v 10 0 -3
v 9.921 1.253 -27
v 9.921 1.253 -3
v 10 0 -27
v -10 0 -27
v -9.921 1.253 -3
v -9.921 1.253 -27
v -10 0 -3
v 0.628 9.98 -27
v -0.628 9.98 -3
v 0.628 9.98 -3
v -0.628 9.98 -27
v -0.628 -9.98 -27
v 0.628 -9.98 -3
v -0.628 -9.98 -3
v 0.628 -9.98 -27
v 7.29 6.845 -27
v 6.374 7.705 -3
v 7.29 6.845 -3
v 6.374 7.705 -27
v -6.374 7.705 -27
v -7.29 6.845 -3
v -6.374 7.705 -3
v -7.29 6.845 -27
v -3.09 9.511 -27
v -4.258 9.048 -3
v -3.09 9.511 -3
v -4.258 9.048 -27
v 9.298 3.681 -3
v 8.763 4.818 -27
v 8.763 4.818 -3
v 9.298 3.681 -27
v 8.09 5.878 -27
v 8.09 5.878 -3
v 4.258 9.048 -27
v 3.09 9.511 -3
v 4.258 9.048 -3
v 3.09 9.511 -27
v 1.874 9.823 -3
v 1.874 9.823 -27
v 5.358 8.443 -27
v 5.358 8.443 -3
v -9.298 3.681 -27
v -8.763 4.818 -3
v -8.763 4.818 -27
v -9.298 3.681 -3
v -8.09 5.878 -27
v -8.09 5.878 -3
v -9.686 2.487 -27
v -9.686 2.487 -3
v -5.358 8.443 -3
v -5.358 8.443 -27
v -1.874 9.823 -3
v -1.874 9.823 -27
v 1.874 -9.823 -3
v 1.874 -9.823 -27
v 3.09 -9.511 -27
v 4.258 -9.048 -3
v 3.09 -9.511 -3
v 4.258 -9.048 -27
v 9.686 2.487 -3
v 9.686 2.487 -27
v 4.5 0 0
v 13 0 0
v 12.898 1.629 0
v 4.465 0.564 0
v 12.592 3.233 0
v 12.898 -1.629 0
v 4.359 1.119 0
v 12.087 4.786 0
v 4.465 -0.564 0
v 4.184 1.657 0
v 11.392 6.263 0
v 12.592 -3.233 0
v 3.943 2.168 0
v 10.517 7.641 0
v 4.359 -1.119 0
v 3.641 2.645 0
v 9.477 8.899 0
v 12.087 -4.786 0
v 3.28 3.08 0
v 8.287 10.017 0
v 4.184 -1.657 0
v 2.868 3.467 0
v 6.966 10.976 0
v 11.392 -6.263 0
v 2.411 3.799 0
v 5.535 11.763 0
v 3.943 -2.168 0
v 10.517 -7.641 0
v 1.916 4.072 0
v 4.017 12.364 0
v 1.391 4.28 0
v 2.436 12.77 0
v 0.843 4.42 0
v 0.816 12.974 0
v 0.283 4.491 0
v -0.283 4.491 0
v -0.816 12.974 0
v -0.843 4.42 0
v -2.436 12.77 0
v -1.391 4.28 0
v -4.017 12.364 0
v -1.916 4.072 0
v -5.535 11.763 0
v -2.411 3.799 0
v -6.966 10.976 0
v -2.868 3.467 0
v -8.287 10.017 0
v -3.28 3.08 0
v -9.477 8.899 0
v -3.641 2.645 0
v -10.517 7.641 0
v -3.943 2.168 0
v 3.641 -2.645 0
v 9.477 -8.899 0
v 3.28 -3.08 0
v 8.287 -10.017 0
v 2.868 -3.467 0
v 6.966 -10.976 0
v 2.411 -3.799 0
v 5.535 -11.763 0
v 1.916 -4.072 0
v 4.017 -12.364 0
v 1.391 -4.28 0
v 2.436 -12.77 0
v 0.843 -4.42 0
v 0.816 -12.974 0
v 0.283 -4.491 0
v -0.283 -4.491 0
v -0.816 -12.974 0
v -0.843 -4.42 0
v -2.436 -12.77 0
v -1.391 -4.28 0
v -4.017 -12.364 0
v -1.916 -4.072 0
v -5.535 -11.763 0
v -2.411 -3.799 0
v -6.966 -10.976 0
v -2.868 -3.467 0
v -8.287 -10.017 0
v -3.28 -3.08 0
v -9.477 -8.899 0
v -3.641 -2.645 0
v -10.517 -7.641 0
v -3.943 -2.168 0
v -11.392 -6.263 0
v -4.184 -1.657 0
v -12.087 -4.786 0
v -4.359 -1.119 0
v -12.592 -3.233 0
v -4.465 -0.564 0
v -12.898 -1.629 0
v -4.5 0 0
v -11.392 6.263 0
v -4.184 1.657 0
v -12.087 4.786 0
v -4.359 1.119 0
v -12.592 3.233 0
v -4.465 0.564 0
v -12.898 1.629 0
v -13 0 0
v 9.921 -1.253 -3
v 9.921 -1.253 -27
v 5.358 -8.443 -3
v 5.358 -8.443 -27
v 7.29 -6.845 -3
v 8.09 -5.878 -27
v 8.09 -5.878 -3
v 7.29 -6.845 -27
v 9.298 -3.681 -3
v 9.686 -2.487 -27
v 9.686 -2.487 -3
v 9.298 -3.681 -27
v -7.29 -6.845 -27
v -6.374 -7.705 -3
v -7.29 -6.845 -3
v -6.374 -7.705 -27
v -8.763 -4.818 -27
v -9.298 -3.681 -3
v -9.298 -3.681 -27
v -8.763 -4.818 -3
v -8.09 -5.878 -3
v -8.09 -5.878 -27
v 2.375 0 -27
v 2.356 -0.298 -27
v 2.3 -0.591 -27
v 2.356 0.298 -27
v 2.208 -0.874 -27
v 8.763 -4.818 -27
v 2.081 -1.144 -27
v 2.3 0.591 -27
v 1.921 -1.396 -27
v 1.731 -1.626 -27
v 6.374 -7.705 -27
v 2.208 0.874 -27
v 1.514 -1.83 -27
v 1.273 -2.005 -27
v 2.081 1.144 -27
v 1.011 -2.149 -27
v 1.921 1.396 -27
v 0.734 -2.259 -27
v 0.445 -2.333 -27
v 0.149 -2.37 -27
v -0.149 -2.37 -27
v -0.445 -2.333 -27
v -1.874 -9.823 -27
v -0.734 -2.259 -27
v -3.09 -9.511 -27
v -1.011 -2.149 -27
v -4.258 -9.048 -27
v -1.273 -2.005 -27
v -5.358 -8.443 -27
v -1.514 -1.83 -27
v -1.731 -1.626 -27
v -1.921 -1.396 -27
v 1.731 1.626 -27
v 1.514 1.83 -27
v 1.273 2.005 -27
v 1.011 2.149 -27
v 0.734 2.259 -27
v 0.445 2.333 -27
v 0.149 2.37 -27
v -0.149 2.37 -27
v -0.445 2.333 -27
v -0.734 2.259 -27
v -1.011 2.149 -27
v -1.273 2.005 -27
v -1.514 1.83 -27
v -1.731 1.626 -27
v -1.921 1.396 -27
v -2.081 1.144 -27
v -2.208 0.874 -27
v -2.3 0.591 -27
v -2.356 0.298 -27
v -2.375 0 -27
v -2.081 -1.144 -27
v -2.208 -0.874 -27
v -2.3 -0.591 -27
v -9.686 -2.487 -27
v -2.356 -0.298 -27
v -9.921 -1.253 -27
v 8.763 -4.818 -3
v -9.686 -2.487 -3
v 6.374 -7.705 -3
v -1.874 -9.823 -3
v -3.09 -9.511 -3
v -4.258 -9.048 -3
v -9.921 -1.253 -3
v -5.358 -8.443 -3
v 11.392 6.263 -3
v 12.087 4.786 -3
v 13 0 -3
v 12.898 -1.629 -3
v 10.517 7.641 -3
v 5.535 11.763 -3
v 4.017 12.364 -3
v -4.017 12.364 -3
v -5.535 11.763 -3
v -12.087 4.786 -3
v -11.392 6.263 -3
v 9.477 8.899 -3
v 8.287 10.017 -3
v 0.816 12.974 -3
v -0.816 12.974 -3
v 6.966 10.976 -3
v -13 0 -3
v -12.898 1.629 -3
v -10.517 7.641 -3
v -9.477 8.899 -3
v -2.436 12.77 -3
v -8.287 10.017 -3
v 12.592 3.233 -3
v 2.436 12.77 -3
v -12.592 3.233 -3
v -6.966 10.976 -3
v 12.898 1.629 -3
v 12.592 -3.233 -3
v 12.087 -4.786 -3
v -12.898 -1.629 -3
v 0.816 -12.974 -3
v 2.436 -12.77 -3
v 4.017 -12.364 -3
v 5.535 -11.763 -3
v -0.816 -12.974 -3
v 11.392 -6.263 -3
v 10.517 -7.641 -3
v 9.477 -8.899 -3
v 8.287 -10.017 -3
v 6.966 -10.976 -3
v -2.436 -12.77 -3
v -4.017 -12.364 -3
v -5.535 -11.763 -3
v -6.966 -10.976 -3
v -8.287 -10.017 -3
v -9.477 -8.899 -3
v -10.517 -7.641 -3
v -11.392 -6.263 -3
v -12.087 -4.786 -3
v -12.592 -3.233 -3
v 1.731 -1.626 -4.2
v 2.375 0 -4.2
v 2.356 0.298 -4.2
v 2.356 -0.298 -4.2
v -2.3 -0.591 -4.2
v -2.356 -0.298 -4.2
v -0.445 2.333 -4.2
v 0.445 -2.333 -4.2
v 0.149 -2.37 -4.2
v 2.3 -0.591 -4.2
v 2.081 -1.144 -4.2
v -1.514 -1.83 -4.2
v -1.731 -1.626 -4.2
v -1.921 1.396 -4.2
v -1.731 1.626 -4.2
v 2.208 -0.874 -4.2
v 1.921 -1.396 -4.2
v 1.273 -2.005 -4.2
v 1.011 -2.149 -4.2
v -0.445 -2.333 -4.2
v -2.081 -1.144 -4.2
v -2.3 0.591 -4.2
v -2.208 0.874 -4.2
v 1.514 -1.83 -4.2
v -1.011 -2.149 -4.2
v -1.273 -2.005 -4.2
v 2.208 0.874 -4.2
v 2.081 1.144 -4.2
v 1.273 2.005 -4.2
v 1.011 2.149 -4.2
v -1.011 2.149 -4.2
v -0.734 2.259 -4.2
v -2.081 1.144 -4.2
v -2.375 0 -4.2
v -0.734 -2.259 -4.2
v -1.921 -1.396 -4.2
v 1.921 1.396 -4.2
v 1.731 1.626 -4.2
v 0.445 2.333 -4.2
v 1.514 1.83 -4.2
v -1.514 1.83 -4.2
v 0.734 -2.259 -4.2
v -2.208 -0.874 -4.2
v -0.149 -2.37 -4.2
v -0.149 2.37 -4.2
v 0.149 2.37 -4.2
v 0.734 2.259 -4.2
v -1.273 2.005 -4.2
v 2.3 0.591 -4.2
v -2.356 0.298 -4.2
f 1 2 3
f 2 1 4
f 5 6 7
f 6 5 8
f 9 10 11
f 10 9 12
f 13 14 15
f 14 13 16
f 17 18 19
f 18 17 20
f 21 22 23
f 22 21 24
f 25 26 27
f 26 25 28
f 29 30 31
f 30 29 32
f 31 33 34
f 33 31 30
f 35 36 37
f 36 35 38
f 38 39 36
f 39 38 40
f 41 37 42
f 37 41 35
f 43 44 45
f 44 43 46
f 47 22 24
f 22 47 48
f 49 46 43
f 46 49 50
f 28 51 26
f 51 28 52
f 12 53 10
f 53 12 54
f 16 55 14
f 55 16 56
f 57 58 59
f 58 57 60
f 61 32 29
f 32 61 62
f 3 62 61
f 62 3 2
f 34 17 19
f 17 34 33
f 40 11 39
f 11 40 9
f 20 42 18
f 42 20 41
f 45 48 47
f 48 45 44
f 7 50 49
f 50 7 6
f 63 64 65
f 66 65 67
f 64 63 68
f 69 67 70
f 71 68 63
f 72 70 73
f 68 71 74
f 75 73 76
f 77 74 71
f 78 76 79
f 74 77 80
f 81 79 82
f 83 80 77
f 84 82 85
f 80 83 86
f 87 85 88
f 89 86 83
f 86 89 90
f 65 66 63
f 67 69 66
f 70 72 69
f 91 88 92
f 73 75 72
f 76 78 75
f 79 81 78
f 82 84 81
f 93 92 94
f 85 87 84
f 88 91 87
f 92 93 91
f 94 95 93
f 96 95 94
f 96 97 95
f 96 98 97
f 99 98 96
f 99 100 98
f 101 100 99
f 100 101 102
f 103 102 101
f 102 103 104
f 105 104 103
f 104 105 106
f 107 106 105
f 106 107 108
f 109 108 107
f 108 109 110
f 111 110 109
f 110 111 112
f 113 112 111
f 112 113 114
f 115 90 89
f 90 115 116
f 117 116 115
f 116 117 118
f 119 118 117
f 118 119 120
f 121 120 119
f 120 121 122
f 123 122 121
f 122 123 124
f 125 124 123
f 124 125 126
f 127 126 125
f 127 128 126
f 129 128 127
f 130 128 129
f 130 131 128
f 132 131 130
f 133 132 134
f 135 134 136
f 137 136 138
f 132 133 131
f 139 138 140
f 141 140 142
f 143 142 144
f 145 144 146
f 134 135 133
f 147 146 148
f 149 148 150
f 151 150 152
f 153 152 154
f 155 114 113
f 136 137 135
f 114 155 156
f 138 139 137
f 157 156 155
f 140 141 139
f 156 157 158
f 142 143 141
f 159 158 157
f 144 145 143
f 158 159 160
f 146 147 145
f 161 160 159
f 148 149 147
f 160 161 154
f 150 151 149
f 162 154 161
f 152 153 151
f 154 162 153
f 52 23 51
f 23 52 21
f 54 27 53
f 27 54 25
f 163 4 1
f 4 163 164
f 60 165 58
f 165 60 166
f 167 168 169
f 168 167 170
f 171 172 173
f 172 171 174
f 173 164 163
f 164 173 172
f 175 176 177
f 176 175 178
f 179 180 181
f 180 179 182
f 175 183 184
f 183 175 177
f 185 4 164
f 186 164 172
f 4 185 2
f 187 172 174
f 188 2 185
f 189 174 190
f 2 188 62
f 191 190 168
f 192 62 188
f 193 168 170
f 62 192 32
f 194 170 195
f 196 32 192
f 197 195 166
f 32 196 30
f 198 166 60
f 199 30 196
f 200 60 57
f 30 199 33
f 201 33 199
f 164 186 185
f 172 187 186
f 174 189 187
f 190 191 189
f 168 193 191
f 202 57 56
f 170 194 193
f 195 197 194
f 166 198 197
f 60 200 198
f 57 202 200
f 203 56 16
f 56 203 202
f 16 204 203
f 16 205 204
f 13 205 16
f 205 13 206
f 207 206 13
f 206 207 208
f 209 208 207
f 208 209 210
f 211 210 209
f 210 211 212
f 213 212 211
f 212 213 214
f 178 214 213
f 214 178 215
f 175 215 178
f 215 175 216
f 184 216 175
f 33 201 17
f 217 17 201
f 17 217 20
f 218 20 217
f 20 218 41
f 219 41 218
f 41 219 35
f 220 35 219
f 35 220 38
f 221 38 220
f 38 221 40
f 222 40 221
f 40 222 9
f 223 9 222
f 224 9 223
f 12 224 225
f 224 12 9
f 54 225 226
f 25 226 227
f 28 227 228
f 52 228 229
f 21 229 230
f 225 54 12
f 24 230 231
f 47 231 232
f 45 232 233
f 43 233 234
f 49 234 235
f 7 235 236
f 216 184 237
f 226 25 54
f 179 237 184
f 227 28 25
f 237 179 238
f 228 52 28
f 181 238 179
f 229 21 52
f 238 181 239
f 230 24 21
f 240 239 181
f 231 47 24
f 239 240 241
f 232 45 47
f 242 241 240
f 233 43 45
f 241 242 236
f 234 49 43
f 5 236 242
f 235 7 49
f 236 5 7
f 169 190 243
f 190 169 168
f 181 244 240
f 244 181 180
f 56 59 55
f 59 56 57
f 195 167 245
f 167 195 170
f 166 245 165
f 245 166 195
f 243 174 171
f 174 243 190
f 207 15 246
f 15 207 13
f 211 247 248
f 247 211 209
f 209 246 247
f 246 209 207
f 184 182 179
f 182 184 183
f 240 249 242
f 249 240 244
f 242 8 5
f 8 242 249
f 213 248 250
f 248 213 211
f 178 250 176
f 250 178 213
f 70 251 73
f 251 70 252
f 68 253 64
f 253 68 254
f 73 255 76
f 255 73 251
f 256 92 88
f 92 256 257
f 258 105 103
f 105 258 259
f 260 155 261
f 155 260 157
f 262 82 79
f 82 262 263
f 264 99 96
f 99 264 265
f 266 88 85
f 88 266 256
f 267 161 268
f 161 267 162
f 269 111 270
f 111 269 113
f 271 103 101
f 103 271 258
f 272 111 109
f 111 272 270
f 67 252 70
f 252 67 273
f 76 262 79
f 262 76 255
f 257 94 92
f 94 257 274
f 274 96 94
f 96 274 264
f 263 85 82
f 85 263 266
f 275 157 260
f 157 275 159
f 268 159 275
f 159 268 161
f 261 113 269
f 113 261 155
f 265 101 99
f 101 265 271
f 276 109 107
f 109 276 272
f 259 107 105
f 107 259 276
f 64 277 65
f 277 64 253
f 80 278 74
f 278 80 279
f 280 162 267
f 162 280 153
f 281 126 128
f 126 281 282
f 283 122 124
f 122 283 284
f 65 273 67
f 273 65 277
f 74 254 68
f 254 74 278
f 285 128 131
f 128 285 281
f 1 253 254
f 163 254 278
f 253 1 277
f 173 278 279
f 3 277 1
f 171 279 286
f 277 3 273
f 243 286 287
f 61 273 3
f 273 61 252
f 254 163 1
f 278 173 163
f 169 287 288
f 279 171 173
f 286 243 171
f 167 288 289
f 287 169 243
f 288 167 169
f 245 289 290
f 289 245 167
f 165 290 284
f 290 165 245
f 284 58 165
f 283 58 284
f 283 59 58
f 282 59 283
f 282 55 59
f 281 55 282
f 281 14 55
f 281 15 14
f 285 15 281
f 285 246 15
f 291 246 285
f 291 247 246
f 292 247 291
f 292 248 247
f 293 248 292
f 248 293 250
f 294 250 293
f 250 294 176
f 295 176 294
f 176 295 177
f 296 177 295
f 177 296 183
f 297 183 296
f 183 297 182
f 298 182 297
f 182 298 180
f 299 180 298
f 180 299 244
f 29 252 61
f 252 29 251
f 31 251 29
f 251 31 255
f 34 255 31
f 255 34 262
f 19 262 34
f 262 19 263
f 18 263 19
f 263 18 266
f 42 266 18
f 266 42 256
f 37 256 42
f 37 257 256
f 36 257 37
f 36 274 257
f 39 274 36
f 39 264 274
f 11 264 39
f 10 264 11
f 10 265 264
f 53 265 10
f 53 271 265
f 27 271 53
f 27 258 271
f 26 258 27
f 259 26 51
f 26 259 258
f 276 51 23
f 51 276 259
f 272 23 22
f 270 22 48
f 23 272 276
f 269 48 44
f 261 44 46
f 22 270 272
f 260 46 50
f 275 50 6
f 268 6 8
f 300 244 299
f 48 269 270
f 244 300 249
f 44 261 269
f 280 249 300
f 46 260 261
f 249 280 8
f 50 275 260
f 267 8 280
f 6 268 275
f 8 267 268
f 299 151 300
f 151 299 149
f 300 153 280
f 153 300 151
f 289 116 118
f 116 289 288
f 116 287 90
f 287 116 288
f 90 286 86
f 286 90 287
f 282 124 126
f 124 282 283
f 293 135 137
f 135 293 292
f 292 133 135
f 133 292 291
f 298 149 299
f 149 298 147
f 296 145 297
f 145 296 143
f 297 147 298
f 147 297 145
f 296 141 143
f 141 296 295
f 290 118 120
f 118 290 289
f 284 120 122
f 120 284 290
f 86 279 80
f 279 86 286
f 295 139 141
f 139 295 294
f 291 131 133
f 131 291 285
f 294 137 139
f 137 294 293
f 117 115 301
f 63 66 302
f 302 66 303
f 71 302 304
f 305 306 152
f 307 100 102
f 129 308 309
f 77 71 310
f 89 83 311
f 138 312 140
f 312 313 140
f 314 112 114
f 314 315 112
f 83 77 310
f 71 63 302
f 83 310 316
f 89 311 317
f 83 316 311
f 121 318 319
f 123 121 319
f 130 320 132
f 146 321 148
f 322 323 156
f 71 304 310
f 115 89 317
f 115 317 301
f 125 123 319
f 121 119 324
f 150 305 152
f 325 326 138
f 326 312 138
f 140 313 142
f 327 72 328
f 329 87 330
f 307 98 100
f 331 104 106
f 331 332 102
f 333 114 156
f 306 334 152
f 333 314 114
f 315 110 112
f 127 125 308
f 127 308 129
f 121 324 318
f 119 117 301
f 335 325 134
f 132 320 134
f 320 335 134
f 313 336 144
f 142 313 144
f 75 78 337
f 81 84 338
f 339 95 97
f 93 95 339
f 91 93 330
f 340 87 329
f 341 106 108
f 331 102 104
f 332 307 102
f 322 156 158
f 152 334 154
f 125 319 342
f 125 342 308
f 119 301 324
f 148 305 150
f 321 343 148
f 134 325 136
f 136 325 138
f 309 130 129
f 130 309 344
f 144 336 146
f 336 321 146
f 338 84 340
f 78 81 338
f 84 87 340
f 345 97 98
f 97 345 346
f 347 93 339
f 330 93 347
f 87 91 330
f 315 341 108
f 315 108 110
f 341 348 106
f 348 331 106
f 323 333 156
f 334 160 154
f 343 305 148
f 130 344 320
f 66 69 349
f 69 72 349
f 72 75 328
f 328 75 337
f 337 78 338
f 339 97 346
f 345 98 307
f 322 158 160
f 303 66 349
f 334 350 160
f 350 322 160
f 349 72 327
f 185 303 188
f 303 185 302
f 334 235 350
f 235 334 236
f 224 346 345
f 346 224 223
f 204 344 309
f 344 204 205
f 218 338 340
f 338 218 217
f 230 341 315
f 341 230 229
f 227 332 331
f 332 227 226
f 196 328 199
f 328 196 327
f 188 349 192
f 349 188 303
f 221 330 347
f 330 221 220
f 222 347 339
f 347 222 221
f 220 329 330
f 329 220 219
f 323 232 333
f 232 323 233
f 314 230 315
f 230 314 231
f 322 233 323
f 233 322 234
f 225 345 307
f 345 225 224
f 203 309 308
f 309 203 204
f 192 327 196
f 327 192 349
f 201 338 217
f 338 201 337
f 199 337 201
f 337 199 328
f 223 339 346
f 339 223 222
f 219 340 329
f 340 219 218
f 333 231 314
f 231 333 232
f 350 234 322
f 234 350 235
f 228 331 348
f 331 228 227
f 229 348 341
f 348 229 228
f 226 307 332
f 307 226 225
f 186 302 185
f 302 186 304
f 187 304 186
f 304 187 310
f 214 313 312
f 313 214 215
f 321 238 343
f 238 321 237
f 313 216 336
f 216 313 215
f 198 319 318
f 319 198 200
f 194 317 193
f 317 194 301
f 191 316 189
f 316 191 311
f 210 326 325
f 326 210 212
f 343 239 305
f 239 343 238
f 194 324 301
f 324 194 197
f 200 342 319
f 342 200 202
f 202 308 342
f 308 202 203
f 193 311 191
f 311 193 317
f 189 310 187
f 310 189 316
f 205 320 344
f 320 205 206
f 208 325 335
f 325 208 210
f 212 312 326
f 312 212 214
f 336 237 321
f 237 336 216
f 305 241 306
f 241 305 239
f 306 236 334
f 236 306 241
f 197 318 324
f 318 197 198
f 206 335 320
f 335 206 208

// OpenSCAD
$fn = 50;


difference() {
	union() {
		translate(v = [0, 0, -27.0000000000]) {
			cylinder(h = 27, r = 10.0000000000);
		}
		translate(v = [0, 0, -3.0000000000]) {
			cylinder(h = 3, r = 13.0000000000);
		}
	}
	union() {
		translate(v = [0, 0, 0]) {
			rotate(a = [0, 0, 0]) {
				difference() {
					union() {
						#translate(v = [0, 0, -27.0000000000]) {
							cylinder(h = 27, r = 2.2500000000);
						}
						#translate(v = [0, 0, -4.2000000000]) {
							cylinder(h = 4.2000000000, r = 10.0000000000, r1 = 2.3750000000, r2 = 4.5000000000);
						}
						#translate(v = [0, 0, -27.0000000000]) {
							cylinder(h = 27, r = 2.3750000000);
						}
						#translate(v = [0, 0, -27.0000000000]) {
							cylinder(h = 27, r = 2.2500000000);
						}
					}
					union();
				}
			}
		}
	}
}
